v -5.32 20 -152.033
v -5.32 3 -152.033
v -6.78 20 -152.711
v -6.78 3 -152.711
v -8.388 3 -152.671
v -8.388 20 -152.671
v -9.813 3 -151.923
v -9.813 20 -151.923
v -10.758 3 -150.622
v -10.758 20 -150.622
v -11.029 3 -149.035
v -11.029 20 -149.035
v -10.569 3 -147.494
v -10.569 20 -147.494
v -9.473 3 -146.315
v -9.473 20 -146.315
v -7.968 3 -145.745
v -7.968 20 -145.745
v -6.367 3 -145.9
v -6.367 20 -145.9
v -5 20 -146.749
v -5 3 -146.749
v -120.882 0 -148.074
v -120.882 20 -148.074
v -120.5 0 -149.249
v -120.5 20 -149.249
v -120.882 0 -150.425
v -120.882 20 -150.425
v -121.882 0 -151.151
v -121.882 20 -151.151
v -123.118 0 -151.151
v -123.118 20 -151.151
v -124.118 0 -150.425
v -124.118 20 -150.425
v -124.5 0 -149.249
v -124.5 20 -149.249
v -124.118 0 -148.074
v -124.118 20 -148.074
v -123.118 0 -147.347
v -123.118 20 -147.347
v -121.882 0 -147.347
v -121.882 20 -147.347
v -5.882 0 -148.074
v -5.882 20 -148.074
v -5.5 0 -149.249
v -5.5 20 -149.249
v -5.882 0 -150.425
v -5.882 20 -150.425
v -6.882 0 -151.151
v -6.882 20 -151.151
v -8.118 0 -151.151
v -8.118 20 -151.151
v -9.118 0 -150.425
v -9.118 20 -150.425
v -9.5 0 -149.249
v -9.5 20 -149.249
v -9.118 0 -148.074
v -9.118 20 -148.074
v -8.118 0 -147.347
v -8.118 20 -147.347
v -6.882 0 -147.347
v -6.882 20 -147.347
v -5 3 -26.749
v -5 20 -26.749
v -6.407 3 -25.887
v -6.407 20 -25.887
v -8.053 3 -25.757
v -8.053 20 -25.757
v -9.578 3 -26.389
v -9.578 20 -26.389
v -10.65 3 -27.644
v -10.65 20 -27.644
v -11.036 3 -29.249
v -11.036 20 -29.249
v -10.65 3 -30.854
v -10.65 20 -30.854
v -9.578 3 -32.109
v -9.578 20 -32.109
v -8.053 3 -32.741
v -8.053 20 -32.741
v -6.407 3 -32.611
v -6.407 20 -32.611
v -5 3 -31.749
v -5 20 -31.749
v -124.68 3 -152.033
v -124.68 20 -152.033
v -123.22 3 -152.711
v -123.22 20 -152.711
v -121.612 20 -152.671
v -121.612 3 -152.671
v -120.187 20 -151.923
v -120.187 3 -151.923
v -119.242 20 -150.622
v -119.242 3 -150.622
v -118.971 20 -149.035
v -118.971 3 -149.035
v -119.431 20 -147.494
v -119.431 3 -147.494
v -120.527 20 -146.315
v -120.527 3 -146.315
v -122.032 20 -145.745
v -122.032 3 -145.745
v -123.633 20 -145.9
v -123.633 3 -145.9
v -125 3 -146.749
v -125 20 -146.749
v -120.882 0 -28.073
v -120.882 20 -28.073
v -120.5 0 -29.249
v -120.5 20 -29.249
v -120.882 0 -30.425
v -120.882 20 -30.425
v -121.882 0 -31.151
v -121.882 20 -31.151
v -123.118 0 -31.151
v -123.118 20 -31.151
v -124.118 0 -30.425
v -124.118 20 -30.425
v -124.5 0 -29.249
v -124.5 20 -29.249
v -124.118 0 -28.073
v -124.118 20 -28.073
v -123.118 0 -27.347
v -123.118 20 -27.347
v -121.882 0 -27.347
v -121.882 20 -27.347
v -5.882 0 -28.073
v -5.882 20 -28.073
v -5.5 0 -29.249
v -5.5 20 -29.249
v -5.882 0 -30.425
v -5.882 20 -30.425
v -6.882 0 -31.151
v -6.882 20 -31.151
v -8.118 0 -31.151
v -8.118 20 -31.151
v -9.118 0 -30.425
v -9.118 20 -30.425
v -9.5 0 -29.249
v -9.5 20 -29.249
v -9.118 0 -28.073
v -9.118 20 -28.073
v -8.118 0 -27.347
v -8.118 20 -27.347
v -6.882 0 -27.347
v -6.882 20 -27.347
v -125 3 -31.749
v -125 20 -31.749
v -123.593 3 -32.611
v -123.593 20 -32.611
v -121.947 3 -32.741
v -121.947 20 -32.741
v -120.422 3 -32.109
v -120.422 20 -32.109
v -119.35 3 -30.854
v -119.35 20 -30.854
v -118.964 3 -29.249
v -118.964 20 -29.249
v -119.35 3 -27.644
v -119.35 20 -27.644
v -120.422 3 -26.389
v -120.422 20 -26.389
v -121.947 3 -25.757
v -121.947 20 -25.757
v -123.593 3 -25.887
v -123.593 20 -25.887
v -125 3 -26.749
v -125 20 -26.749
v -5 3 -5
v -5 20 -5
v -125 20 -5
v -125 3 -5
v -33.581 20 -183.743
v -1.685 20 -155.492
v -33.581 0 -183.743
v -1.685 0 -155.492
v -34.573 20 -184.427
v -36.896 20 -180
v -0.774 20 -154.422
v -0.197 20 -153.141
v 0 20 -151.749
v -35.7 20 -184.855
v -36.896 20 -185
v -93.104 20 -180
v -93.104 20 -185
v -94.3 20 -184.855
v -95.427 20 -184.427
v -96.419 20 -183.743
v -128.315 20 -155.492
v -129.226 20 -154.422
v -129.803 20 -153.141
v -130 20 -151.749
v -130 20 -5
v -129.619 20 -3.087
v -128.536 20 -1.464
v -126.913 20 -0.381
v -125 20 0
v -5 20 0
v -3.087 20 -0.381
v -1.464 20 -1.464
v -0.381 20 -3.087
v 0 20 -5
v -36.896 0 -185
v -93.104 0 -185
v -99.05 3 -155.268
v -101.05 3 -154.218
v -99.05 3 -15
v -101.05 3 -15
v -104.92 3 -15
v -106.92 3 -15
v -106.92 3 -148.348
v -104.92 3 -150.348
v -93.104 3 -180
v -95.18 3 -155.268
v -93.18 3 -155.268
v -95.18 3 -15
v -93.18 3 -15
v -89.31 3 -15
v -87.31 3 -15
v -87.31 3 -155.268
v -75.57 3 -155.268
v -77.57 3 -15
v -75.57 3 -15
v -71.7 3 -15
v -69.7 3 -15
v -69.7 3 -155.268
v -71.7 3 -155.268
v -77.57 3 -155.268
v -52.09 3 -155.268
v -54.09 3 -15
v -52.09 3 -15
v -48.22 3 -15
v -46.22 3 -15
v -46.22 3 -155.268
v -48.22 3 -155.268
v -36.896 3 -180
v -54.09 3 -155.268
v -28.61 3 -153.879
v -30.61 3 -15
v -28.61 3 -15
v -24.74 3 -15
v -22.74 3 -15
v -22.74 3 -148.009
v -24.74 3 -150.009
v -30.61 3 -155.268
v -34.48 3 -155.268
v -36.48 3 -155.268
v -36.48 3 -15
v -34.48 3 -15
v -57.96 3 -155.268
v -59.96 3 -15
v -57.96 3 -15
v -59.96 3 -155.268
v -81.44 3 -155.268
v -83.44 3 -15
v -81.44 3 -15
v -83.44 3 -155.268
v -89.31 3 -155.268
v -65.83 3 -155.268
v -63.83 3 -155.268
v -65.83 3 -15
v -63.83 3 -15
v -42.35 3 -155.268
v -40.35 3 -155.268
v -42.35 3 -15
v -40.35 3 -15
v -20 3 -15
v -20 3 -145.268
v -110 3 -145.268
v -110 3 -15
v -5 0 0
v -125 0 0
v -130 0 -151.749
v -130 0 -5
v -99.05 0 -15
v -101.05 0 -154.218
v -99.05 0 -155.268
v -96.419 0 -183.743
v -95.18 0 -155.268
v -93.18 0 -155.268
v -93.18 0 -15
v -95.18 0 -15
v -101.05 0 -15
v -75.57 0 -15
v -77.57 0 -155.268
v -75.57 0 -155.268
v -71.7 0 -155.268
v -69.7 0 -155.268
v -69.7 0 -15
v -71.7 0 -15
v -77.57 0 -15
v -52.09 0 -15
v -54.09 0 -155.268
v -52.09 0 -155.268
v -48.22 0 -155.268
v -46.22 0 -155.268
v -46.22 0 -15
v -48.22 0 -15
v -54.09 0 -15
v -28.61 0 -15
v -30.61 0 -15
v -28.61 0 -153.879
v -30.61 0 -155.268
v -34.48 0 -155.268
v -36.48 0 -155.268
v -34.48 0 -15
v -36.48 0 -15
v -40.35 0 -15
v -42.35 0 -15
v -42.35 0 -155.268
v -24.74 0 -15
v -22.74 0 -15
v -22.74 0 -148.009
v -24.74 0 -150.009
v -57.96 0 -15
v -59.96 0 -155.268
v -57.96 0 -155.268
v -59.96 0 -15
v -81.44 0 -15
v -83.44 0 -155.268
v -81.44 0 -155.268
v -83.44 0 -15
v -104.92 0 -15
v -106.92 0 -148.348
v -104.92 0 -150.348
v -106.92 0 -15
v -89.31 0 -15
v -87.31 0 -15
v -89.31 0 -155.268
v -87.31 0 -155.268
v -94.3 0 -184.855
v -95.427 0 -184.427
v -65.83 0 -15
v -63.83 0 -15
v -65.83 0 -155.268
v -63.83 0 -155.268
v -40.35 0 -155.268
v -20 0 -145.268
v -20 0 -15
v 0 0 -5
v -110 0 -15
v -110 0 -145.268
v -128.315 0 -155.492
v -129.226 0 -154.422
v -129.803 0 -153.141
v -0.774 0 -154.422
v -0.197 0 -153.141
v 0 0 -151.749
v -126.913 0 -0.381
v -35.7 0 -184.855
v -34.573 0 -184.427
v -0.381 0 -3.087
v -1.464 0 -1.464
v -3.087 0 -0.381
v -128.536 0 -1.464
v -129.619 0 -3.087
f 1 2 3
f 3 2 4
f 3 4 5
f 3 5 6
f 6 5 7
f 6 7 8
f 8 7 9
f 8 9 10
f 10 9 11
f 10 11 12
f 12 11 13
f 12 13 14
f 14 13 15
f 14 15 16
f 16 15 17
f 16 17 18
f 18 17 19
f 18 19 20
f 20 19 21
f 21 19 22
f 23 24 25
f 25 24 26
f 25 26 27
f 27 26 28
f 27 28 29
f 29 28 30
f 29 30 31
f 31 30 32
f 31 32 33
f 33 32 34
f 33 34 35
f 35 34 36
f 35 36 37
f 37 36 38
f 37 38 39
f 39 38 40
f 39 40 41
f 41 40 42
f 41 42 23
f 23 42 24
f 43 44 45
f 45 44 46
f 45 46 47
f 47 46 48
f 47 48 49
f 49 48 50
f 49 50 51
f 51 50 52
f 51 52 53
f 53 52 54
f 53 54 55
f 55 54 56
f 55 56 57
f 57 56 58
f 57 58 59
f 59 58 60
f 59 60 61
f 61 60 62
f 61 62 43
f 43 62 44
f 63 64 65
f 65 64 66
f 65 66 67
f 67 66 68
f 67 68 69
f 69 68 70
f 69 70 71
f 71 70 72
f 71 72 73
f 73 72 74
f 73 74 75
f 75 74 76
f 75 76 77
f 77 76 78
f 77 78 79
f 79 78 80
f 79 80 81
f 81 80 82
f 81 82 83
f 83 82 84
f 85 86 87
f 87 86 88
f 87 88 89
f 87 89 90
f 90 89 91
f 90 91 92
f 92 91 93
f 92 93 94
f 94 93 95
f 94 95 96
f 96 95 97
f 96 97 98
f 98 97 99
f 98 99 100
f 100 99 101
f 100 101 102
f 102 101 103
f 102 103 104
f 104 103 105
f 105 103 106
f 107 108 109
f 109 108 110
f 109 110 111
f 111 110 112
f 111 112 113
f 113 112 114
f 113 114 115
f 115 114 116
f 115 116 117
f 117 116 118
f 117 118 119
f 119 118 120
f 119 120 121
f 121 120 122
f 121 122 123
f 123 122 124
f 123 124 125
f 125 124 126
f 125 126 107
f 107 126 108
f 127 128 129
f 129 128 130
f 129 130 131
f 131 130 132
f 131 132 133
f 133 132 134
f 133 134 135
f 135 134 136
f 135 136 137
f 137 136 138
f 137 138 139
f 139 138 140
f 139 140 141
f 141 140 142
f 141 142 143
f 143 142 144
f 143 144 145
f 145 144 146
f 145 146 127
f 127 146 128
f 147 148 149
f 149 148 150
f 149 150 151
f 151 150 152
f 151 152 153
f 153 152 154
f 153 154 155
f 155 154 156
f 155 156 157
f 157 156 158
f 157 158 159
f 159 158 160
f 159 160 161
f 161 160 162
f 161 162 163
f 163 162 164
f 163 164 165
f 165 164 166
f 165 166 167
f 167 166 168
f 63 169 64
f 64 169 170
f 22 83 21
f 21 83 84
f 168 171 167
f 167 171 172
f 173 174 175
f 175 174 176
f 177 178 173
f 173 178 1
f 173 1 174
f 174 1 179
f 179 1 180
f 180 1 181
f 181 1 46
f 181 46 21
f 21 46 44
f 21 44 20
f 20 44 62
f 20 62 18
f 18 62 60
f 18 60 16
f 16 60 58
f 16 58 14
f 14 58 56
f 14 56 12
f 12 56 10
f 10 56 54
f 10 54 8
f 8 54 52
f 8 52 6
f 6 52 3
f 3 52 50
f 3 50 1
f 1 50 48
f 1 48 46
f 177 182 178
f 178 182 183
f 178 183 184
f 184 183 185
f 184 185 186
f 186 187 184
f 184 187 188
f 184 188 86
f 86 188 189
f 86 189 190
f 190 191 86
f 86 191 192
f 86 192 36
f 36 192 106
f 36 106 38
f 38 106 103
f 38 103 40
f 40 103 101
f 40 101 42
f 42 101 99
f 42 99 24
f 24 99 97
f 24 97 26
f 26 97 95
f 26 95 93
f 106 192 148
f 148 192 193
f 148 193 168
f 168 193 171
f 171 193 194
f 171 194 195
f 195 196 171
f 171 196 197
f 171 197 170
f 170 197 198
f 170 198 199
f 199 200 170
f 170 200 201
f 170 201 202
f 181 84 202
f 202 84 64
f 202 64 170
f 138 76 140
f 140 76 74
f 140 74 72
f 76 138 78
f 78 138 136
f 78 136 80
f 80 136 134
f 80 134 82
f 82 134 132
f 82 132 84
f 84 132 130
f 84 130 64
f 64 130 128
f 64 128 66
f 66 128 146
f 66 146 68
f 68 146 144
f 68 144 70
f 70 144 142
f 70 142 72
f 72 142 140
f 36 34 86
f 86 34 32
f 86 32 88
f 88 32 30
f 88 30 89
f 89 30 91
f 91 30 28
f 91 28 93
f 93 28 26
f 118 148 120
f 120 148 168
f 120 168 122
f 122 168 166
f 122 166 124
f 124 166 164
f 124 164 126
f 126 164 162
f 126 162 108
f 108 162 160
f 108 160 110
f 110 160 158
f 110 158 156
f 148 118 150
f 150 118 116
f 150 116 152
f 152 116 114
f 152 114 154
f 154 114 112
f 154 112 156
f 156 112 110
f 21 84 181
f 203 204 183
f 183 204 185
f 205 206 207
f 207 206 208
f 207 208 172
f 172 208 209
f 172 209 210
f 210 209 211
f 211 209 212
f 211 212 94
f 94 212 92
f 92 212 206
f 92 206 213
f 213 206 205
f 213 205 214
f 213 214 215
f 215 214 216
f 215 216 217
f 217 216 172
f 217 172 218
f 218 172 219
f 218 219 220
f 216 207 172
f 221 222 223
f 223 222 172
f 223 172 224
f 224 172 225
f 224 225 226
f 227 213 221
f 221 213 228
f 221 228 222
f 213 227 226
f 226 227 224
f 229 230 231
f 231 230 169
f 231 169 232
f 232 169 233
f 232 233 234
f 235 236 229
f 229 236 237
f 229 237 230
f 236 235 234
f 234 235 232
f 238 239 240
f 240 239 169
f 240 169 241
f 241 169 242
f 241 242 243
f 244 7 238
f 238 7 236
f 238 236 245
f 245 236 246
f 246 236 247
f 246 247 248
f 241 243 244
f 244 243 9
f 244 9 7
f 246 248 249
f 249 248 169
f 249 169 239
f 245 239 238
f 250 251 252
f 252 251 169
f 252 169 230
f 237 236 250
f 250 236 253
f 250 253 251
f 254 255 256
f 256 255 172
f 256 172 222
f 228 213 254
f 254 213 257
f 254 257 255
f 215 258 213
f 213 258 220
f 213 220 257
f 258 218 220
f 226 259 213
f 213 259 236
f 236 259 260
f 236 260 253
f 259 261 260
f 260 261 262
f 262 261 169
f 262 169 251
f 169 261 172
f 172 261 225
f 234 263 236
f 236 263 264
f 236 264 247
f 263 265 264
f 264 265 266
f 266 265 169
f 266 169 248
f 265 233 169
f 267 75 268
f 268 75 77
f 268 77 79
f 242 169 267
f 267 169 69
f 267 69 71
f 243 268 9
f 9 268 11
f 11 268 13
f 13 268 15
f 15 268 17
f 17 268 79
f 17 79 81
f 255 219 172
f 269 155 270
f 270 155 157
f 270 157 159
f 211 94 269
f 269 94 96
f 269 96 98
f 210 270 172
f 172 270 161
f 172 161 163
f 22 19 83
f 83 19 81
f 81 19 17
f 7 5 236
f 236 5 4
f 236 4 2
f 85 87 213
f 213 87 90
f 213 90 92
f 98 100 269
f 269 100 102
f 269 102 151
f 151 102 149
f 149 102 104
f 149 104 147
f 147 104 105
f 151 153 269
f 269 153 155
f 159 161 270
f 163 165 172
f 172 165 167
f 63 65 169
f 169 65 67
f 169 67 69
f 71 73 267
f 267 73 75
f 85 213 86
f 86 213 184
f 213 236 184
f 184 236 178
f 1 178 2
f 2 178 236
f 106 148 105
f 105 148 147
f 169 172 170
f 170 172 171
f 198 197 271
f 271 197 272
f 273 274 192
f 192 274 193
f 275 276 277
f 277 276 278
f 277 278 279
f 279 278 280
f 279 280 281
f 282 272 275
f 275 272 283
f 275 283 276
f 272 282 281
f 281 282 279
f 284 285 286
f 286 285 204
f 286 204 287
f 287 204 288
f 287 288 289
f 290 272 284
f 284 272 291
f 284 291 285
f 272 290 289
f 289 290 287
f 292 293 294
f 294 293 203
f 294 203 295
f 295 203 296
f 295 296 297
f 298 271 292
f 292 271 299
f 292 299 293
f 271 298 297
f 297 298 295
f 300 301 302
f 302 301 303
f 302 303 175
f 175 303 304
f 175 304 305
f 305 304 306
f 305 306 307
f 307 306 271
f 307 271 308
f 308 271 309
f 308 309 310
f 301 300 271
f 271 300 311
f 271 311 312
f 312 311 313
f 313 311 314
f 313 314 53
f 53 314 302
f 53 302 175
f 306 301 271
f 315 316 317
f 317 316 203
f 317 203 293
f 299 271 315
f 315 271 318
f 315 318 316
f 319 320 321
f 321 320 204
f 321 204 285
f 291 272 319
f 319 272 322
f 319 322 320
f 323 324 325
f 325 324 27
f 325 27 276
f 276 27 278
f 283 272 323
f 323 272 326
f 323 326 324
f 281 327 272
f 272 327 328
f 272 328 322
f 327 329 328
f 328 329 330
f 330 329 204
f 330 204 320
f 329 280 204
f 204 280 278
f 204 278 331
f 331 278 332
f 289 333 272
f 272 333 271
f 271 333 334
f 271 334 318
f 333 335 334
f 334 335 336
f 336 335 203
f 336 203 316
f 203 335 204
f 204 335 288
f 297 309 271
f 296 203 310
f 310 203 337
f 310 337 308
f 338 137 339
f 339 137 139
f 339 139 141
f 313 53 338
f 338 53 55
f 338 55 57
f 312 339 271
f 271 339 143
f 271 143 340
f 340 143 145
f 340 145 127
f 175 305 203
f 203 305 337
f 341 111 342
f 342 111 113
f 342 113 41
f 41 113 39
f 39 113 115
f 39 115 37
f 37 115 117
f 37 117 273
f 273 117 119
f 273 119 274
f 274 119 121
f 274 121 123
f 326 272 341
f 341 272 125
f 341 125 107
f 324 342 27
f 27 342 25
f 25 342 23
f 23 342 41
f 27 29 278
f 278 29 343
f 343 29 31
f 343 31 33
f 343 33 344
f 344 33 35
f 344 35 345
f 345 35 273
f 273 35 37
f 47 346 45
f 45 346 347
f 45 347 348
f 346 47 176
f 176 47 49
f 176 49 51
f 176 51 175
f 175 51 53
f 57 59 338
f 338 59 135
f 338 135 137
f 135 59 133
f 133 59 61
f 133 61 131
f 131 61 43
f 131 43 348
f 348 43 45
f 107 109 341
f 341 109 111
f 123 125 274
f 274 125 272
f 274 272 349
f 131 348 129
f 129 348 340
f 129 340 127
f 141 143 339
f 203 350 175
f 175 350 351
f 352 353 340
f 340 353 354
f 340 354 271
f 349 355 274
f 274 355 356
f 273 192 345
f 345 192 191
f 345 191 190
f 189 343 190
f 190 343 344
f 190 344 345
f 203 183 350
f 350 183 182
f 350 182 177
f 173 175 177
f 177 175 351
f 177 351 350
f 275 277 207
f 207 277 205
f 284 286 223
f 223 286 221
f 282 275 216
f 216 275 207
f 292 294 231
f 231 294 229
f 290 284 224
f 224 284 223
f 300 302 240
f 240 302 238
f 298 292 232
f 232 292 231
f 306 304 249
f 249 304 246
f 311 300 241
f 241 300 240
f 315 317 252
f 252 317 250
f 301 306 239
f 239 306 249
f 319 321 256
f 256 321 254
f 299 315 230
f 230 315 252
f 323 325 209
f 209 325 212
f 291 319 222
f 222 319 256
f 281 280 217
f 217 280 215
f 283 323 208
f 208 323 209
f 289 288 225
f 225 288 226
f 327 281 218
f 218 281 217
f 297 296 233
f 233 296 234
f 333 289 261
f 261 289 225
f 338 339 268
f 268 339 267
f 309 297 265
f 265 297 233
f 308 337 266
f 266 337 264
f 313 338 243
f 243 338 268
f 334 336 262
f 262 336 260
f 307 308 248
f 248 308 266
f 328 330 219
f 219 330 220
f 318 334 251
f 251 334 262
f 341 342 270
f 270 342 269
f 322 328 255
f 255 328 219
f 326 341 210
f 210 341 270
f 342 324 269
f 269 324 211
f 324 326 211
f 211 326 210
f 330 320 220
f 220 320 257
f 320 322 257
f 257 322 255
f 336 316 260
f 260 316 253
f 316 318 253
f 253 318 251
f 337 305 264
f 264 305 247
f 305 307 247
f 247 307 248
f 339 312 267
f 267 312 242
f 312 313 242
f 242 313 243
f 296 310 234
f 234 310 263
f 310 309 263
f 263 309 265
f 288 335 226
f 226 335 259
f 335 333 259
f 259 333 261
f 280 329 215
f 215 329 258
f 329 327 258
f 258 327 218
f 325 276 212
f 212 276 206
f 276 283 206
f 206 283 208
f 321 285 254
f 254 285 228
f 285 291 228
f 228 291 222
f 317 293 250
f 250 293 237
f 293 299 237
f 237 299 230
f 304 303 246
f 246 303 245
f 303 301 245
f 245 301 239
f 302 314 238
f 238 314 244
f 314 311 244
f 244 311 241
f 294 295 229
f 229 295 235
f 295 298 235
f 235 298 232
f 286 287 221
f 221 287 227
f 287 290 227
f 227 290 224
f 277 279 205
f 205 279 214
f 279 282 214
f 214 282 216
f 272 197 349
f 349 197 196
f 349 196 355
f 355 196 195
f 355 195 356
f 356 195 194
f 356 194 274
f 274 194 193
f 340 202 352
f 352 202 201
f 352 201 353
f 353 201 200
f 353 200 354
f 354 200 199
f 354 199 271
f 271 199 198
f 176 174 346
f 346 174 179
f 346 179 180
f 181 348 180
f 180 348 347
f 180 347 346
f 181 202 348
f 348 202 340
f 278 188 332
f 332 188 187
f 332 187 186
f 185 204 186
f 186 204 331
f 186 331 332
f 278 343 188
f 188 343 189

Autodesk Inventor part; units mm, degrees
ref_plane "YZ Plane" through (0, 0, 0) normal (1, 0, 0) x (0, 1, 0)
ref_plane "XY Plane" through (0, 0, 0) normal (0, 0, 1) x (1, 0, 0)
sketch "Boceto1" plane through (0, 0, 0) normal (0, 1, 0) x (-1, 0, 0)
  line L0 (0, 0) -> (0, -154)
  line L1 (35, -185) -> (95, -185)
  line L2 (130, -154) -> (130, 0)
  line L3 (130, 0) -> (0, 0)
  line L4 (0, 0) -> (0, -154) construction
  line L5 (65, -185) -> (95, -185) construction
  line L6 (95, -185) -> (95, -206.4869) construction
  line L7 (95, -206.4869) -> (35, -206.4869) construction
  line L8 (35, -206.4869) -> (35, -185) construction
  line L9 (0, -154) -> (35, -185)
  line L10 (95, -185) -> (130, -154)
  line L11 (61.4516, 0) -> (61.4516, -5) construction
  line L12 (130, -81.3037) -> (125, -81.3037) construction
  line L13 (0, -85.0807) -> (5, -85.0807) construction
  line L14 (125, -5) -> (5, -5)
  line L15 (5, -5) -> (5, -148.3548)
  line L16 (125, -148.3548) -> (125, -5)
  line L17 (112.5, -169.5) -> (109.1848, -165.7571) construction
  line L18 (65, -185) -> (65, -180) construction
  line L19 (17.5, -169.5) -> (20.8152, -165.7571) construction
  line L20 (20.8152, -165.7571) -> (5, -151.7493)
  line L21 (20.8152, -165.7571) -> (36.8959, -180)
  line L22 (36.8959, -180) -> (93.1041, -180)
  line L23 (93.1041, -180) -> (125, -151.7493)
  line L24 (125, -151.7493) -> (125, -148.3548)
  line L25 (5, -148.3548) -> (5, -151.7493)
  dimension "d2" = 154
  dimension "d3" = 30
  dimension "d4" = 60
  dimension "d5" = 5
  dimension "d6" = 5
  dimension "d7" = 5
  dimension "d8" = 5
  dimension "d9" = 5
  dimension "d10" = 5
extrude "Extrusión1" add sketch "Boceto1" along normal blind 3 contours L16 L24 L23 L22 L21 L20 L25 L15 L14
extrude "Extrusión2" add sketch "Boceto1" along normal blind 20
ref_plane "Plano de trabajo1" through (0, 20, 0) normal (0, 1, 0) x (-1, 0, 0)
sketch "Boceto2" plane through (0, 20, 0) normal (0, 1, 0) x (-1, 0, 0)
  line L0 (0, 0) -> (0, -154) construction
  line L1 (0, 0) -> (0, -26.749) construction
  line L2 (130, -154) -> (130, 0) construction
  line L3 (125, -151.7493) -> (93.1041, -180) construction
  line L4 (125, -151.7493) -> (5, -151.7493) construction
  line L5 (65, -151.7493) -> (65, -26.749) construction
  line L6 (125, -89.2492) -> (5, -89.2492) construction
  line L7 (5, -151.7493) -> (5, -5) construction
  line L8 (125, -26.749) -> (125, -31.749) construction
  line L9 (125, -31.749) -> (120, -31.749) construction
  line L10 (120, -31.749) -> (120, -26.749) construction
  line L11 (125, -31.749) -> (120, -26.749) construction
  line L12 (120, -31.749) -> (125, -26.749) construction
  circle A0 centre (122.5, -29.249) radius 2
  line L13 (125, -31.749) -> (125, -26.749)
  arc A1 (120, -26.749) -> (125, -31.749) centre (122.5, -29.249) ccw
  line L14 (5, -26.749) -> (5, -31.749) construction
  circle A2 centre (7.5, -29.249) radius 2
  line L15 (5, -31.749) -> (5, -26.749)
  arc A3 (5, -31.749) -> (10, -26.749) centre (7.5, -29.249) ccw
  arc A4 (125, -26.749) -> (120.5, -32.1645) centre (122.5, -29.249) ccw
  arc A5 (10.6306, -27.606) -> (5, -26.749) centre (7.5, -29.249) ccw
  line L16 (5, -26.749) -> (5, -173.4983) construction
  line L17 (125, -151.7493) -> (125, -146.7493) construction
  line L18 (120, -146.7493) -> (125, -151.7493) construction
  circle A6 centre (122.5, -149.2493) radius 2
  line L19 (125, -146.7493) -> (125, -151.7493)
  arc A7 (125, -146.7493) -> (120, -151.7493) centre (122.5, -149.2493) ccw
  arc A8 (10, -151.7493) -> (5, -146.7493) centre (7.5, -149.2493) ccw
  line L20 (5, -151.7493) -> (5, -146.7493) construction
  line L21 (5, -146.7493) -> (5, -151.7493)
  circle A9 centre (7.5, -149.2493) radius 2
  arc A10 (120.5, -146.3339) -> (125, -151.7493) centre (122.5, -149.2493) ccw
  arc A11 (5, -151.7493) -> (10.6306, -150.8923) centre (7.5, -149.2493) ccw
  point P0 (10, -151.7493)
  point P1 (10, -26.749)
  point P2 (120, -26.749)
  dimension "d16" = 26.749
  dimension "d19" = 4
extrude "Extrusión3" add sketch "Boceto2" against normal blind 17
extrude "Extrusión4" cut sketch "Boceto2" against normal through all contours A0 | A2 | A6 | A9
sketch "Boceto3" plane through (0, 3, 0) normal (0, 1, 0) x (1, 0, 0)
  line L0 (-125, 5) -> (-5, 5) construction
  line L1 (-65, 5) -> (-110, 5) construction
  line L2 (-110, 5) -> (-110, 15) construction
  line L3 (-110, 15) -> (-20, 15)
  line L4 (-20, 15) -> (-20, 145.2684)
  line L5 (-30, 155.2684) -> (-100, 155.2684)
  line L6 (-110, 145.2684) -> (-110, 15)
  line L7 (-65, 15) -> (-65, 155.2684) construction
  line L8 (-100, 155.2684) -> (-110, 145.2684)
  line L9 (-30, 155.2684) -> (-20, 145.2684)
  line L10 (-106.9205, 15) -> (-104.9205, 15)
  line L11 (-104.9205, 15) -> (-104.9205, 155.2684)
  line L12 (-106.9205, 155.2684) -> (-106.9205, 15)
  line L13 (-99.0505, 15) -> (-99.0505, 155.2684)
  line L14 (-101.0505, 155.2684) -> (-101.0505, 15)
  line L15 (-93.1805, 15) -> (-93.1805, 155.2684)
  line L16 (-95.1805, 155.2684) -> (-95.1805, 15)
  line L17 (-87.3105, 15) -> (-87.3105, 155.2684)
  line L18 (-89.3105, 155.2684) -> (-89.3105, 15)
  line L19 (-81.4405, 15) -> (-81.4405, 155.2684)
  line L20 (-83.4405, 155.2684) -> (-83.4405, 15)
  line L21 (-75.5705, 15) -> (-75.5705, 155.2684)
  line L22 (-77.5705, 155.2684) -> (-77.5705, 15)
  line L23 (-69.7005, 15) -> (-69.7005, 155.2684)
  line L24 (-71.7005, 155.2684) -> (-71.7005, 15)
  line L25 (-63.8305, 15) -> (-63.8305, 155.2684)
  line L26 (-65.8305, 155.2684) -> (-65.8305, 15)
  line L27 (-57.9605, 15) -> (-57.9605, 155.2684)
  line L28 (-59.9605, 155.2684) -> (-59.9605, 15)
  line L29 (-52.0905, 15) -> (-52.0905, 155.2684)
  line L30 (-54.0905, 155.2684) -> (-54.0905, 15)
  line L31 (-46.2205, 15) -> (-46.2205, 155.2684)
  line L32 (-48.2205, 155.2684) -> (-48.2205, 15)
  line L33 (-40.3505, 15) -> (-40.3505, 155.2684)
  line L34 (-42.3505, 155.2684) -> (-42.3505, 15)
  line L35 (-34.4805, 15) -> (-34.4805, 155.2684)
  line L36 (-36.4805, 155.2684) -> (-36.4805, 15)
  line L37 (-28.6105, 15) -> (-28.6105, 155.2684)
  line L38 (-30.6105, 155.2684) -> (-30.6105, 15)
  line L39 (-22.7405, 15) -> (-22.7405, 155.2684)
  line L40 (-24.7405, 155.2684) -> (-24.7405, 15)
  line L41 (-106.9205, 148.348) -> (-104.9205, 150.348)
  line L42 (-101.0505, 154.218) -> (-100, 155.2684)
  line L43 (-110, 145.2684) -> (-100, 155.2684)
  line L44 (-100, 155.2684) -> (-30, 155.2684)
  line L45 (-30, 155.2684) -> (-20, 145.2684)
  line L46 (-20, 145.2684) -> (-20, 15)
  line L47 (-110, 15) -> (-20, 15)
  line L48 (-110, 15) -> (-110, 145.2684)
  line L49 (-83.4405, 15) -> (-81.4405, 15)
  line L50 (-77.5705, 15) -> (-75.5705, 15)
  line L51 (-87.3105, 15) -> (-89.3105, 15)
  line L52 (-93.1805, 15) -> (-95.1805, 15)
  line L53 (-99.0505, 15) -> (-101.0505, 15)
  line L54 (-104.9205, 15) -> (-106.9205, 15)
  line L55 (-71.7005, 15) -> (-69.7005, 15)
  line L56 (-65.8305, 15) -> (-63.8305, 15)
  line L57 (-59.9605, 15) -> (-57.9605, 15)
  line L58 (-54.0905, 15) -> (-52.0905, 15)
  line L59 (-48.2205, 15) -> (-46.2205, 15)
  line L60 (-42.3505, 15) -> (-40.3505, 15)
  line L61 (-36.4805, 15) -> (-34.4805, 15)
  line L62 (-30.6105, 15) -> (-28.6105, 15)
  line L63 (-24.7405, 15) -> (-22.7405, 15)
  line L64 (-22.7405, 148.0089) -> (-24.7405, 150.0089)
  line L65 (-28.6105, 153.8789) -> (-30, 155.2684)
  line L66 (-30.6105, 155.2684) -> (-30, 155.2684)
  line L67 (-35, 185) -> (-95, 185) projected
  line L68 (-34.4805, 155.2684) -> (-36.4805, 155.2684)
  line L69 (-40.3505, 155.2684) -> (-42.3505, 155.2684)
  line L70 (-46.2205, 155.2684) -> (-48.2205, 155.2684)
  line L71 (-52.0905, 155.2684) -> (-54.0905, 155.2684)
  line L72 (-57.9605, 155.2684) -> (-59.9605, 155.2684)
  line L73 (-63.8305, 155.2684) -> (-65.8305, 155.2684)
  line L74 (-69.7005, 155.2684) -> (-71.7005, 155.2684)
  line L75 (-75.5705, 155.2684) -> (-77.5705, 155.2684)
  line L76 (-81.4405, 155.2684) -> (-83.4405, 155.2684)
  line L77 (-87.3105, 155.2684) -> (-89.3105, 155.2684)
  line L78 (-93.1805, 155.2684) -> (-95.1805, 155.2684)
  line L79 (-99.0505, 155.2684) -> (-100, 155.2684)
  line L80 (-101.0505, 154.218) -> (-100, 155.2684)
  line L81 (-104.9205, 150.348) -> (-106.9205, 148.348)
  line L82 (-106.9205, 148.348) -> (-104.9205, 150.348)
  point P0 (0, 0)
  dimension "d24" = 45
  dimension "d25" = 10
  dimension "d32" = 5.87
extrude "Extrusión5" cut sketch "Boceto3" against normal blind 10 contours L6 L8 L12 L3 | L11 L8 L14 L3 | L13 L5 L16 L3 | L15 L5 L18 L3 | L17 L5 L20 L3 | L19 L5 L22 L3 | L21 L5 L24 L3 | L23 L5 L26 L3 | L25 L5 L28 L3 | L27 L5 L30 L3 | L29 L5 L32 L3 | L31 L5 L34 L3 | L33 L5 L36 L3 | L35 L5 L38 L3 | L37 L9 L40 L3 | L39 L9 L4 L3
fillet "Empalme1" radius 5 4 edges at (-130, 10, 0) (0, 10, 0) (0, 10, -154) (-130, 10, -154)
fillet "Empalme2" radius 5 2 edges at (-95, 10, -185) (-35, 10, -185)
